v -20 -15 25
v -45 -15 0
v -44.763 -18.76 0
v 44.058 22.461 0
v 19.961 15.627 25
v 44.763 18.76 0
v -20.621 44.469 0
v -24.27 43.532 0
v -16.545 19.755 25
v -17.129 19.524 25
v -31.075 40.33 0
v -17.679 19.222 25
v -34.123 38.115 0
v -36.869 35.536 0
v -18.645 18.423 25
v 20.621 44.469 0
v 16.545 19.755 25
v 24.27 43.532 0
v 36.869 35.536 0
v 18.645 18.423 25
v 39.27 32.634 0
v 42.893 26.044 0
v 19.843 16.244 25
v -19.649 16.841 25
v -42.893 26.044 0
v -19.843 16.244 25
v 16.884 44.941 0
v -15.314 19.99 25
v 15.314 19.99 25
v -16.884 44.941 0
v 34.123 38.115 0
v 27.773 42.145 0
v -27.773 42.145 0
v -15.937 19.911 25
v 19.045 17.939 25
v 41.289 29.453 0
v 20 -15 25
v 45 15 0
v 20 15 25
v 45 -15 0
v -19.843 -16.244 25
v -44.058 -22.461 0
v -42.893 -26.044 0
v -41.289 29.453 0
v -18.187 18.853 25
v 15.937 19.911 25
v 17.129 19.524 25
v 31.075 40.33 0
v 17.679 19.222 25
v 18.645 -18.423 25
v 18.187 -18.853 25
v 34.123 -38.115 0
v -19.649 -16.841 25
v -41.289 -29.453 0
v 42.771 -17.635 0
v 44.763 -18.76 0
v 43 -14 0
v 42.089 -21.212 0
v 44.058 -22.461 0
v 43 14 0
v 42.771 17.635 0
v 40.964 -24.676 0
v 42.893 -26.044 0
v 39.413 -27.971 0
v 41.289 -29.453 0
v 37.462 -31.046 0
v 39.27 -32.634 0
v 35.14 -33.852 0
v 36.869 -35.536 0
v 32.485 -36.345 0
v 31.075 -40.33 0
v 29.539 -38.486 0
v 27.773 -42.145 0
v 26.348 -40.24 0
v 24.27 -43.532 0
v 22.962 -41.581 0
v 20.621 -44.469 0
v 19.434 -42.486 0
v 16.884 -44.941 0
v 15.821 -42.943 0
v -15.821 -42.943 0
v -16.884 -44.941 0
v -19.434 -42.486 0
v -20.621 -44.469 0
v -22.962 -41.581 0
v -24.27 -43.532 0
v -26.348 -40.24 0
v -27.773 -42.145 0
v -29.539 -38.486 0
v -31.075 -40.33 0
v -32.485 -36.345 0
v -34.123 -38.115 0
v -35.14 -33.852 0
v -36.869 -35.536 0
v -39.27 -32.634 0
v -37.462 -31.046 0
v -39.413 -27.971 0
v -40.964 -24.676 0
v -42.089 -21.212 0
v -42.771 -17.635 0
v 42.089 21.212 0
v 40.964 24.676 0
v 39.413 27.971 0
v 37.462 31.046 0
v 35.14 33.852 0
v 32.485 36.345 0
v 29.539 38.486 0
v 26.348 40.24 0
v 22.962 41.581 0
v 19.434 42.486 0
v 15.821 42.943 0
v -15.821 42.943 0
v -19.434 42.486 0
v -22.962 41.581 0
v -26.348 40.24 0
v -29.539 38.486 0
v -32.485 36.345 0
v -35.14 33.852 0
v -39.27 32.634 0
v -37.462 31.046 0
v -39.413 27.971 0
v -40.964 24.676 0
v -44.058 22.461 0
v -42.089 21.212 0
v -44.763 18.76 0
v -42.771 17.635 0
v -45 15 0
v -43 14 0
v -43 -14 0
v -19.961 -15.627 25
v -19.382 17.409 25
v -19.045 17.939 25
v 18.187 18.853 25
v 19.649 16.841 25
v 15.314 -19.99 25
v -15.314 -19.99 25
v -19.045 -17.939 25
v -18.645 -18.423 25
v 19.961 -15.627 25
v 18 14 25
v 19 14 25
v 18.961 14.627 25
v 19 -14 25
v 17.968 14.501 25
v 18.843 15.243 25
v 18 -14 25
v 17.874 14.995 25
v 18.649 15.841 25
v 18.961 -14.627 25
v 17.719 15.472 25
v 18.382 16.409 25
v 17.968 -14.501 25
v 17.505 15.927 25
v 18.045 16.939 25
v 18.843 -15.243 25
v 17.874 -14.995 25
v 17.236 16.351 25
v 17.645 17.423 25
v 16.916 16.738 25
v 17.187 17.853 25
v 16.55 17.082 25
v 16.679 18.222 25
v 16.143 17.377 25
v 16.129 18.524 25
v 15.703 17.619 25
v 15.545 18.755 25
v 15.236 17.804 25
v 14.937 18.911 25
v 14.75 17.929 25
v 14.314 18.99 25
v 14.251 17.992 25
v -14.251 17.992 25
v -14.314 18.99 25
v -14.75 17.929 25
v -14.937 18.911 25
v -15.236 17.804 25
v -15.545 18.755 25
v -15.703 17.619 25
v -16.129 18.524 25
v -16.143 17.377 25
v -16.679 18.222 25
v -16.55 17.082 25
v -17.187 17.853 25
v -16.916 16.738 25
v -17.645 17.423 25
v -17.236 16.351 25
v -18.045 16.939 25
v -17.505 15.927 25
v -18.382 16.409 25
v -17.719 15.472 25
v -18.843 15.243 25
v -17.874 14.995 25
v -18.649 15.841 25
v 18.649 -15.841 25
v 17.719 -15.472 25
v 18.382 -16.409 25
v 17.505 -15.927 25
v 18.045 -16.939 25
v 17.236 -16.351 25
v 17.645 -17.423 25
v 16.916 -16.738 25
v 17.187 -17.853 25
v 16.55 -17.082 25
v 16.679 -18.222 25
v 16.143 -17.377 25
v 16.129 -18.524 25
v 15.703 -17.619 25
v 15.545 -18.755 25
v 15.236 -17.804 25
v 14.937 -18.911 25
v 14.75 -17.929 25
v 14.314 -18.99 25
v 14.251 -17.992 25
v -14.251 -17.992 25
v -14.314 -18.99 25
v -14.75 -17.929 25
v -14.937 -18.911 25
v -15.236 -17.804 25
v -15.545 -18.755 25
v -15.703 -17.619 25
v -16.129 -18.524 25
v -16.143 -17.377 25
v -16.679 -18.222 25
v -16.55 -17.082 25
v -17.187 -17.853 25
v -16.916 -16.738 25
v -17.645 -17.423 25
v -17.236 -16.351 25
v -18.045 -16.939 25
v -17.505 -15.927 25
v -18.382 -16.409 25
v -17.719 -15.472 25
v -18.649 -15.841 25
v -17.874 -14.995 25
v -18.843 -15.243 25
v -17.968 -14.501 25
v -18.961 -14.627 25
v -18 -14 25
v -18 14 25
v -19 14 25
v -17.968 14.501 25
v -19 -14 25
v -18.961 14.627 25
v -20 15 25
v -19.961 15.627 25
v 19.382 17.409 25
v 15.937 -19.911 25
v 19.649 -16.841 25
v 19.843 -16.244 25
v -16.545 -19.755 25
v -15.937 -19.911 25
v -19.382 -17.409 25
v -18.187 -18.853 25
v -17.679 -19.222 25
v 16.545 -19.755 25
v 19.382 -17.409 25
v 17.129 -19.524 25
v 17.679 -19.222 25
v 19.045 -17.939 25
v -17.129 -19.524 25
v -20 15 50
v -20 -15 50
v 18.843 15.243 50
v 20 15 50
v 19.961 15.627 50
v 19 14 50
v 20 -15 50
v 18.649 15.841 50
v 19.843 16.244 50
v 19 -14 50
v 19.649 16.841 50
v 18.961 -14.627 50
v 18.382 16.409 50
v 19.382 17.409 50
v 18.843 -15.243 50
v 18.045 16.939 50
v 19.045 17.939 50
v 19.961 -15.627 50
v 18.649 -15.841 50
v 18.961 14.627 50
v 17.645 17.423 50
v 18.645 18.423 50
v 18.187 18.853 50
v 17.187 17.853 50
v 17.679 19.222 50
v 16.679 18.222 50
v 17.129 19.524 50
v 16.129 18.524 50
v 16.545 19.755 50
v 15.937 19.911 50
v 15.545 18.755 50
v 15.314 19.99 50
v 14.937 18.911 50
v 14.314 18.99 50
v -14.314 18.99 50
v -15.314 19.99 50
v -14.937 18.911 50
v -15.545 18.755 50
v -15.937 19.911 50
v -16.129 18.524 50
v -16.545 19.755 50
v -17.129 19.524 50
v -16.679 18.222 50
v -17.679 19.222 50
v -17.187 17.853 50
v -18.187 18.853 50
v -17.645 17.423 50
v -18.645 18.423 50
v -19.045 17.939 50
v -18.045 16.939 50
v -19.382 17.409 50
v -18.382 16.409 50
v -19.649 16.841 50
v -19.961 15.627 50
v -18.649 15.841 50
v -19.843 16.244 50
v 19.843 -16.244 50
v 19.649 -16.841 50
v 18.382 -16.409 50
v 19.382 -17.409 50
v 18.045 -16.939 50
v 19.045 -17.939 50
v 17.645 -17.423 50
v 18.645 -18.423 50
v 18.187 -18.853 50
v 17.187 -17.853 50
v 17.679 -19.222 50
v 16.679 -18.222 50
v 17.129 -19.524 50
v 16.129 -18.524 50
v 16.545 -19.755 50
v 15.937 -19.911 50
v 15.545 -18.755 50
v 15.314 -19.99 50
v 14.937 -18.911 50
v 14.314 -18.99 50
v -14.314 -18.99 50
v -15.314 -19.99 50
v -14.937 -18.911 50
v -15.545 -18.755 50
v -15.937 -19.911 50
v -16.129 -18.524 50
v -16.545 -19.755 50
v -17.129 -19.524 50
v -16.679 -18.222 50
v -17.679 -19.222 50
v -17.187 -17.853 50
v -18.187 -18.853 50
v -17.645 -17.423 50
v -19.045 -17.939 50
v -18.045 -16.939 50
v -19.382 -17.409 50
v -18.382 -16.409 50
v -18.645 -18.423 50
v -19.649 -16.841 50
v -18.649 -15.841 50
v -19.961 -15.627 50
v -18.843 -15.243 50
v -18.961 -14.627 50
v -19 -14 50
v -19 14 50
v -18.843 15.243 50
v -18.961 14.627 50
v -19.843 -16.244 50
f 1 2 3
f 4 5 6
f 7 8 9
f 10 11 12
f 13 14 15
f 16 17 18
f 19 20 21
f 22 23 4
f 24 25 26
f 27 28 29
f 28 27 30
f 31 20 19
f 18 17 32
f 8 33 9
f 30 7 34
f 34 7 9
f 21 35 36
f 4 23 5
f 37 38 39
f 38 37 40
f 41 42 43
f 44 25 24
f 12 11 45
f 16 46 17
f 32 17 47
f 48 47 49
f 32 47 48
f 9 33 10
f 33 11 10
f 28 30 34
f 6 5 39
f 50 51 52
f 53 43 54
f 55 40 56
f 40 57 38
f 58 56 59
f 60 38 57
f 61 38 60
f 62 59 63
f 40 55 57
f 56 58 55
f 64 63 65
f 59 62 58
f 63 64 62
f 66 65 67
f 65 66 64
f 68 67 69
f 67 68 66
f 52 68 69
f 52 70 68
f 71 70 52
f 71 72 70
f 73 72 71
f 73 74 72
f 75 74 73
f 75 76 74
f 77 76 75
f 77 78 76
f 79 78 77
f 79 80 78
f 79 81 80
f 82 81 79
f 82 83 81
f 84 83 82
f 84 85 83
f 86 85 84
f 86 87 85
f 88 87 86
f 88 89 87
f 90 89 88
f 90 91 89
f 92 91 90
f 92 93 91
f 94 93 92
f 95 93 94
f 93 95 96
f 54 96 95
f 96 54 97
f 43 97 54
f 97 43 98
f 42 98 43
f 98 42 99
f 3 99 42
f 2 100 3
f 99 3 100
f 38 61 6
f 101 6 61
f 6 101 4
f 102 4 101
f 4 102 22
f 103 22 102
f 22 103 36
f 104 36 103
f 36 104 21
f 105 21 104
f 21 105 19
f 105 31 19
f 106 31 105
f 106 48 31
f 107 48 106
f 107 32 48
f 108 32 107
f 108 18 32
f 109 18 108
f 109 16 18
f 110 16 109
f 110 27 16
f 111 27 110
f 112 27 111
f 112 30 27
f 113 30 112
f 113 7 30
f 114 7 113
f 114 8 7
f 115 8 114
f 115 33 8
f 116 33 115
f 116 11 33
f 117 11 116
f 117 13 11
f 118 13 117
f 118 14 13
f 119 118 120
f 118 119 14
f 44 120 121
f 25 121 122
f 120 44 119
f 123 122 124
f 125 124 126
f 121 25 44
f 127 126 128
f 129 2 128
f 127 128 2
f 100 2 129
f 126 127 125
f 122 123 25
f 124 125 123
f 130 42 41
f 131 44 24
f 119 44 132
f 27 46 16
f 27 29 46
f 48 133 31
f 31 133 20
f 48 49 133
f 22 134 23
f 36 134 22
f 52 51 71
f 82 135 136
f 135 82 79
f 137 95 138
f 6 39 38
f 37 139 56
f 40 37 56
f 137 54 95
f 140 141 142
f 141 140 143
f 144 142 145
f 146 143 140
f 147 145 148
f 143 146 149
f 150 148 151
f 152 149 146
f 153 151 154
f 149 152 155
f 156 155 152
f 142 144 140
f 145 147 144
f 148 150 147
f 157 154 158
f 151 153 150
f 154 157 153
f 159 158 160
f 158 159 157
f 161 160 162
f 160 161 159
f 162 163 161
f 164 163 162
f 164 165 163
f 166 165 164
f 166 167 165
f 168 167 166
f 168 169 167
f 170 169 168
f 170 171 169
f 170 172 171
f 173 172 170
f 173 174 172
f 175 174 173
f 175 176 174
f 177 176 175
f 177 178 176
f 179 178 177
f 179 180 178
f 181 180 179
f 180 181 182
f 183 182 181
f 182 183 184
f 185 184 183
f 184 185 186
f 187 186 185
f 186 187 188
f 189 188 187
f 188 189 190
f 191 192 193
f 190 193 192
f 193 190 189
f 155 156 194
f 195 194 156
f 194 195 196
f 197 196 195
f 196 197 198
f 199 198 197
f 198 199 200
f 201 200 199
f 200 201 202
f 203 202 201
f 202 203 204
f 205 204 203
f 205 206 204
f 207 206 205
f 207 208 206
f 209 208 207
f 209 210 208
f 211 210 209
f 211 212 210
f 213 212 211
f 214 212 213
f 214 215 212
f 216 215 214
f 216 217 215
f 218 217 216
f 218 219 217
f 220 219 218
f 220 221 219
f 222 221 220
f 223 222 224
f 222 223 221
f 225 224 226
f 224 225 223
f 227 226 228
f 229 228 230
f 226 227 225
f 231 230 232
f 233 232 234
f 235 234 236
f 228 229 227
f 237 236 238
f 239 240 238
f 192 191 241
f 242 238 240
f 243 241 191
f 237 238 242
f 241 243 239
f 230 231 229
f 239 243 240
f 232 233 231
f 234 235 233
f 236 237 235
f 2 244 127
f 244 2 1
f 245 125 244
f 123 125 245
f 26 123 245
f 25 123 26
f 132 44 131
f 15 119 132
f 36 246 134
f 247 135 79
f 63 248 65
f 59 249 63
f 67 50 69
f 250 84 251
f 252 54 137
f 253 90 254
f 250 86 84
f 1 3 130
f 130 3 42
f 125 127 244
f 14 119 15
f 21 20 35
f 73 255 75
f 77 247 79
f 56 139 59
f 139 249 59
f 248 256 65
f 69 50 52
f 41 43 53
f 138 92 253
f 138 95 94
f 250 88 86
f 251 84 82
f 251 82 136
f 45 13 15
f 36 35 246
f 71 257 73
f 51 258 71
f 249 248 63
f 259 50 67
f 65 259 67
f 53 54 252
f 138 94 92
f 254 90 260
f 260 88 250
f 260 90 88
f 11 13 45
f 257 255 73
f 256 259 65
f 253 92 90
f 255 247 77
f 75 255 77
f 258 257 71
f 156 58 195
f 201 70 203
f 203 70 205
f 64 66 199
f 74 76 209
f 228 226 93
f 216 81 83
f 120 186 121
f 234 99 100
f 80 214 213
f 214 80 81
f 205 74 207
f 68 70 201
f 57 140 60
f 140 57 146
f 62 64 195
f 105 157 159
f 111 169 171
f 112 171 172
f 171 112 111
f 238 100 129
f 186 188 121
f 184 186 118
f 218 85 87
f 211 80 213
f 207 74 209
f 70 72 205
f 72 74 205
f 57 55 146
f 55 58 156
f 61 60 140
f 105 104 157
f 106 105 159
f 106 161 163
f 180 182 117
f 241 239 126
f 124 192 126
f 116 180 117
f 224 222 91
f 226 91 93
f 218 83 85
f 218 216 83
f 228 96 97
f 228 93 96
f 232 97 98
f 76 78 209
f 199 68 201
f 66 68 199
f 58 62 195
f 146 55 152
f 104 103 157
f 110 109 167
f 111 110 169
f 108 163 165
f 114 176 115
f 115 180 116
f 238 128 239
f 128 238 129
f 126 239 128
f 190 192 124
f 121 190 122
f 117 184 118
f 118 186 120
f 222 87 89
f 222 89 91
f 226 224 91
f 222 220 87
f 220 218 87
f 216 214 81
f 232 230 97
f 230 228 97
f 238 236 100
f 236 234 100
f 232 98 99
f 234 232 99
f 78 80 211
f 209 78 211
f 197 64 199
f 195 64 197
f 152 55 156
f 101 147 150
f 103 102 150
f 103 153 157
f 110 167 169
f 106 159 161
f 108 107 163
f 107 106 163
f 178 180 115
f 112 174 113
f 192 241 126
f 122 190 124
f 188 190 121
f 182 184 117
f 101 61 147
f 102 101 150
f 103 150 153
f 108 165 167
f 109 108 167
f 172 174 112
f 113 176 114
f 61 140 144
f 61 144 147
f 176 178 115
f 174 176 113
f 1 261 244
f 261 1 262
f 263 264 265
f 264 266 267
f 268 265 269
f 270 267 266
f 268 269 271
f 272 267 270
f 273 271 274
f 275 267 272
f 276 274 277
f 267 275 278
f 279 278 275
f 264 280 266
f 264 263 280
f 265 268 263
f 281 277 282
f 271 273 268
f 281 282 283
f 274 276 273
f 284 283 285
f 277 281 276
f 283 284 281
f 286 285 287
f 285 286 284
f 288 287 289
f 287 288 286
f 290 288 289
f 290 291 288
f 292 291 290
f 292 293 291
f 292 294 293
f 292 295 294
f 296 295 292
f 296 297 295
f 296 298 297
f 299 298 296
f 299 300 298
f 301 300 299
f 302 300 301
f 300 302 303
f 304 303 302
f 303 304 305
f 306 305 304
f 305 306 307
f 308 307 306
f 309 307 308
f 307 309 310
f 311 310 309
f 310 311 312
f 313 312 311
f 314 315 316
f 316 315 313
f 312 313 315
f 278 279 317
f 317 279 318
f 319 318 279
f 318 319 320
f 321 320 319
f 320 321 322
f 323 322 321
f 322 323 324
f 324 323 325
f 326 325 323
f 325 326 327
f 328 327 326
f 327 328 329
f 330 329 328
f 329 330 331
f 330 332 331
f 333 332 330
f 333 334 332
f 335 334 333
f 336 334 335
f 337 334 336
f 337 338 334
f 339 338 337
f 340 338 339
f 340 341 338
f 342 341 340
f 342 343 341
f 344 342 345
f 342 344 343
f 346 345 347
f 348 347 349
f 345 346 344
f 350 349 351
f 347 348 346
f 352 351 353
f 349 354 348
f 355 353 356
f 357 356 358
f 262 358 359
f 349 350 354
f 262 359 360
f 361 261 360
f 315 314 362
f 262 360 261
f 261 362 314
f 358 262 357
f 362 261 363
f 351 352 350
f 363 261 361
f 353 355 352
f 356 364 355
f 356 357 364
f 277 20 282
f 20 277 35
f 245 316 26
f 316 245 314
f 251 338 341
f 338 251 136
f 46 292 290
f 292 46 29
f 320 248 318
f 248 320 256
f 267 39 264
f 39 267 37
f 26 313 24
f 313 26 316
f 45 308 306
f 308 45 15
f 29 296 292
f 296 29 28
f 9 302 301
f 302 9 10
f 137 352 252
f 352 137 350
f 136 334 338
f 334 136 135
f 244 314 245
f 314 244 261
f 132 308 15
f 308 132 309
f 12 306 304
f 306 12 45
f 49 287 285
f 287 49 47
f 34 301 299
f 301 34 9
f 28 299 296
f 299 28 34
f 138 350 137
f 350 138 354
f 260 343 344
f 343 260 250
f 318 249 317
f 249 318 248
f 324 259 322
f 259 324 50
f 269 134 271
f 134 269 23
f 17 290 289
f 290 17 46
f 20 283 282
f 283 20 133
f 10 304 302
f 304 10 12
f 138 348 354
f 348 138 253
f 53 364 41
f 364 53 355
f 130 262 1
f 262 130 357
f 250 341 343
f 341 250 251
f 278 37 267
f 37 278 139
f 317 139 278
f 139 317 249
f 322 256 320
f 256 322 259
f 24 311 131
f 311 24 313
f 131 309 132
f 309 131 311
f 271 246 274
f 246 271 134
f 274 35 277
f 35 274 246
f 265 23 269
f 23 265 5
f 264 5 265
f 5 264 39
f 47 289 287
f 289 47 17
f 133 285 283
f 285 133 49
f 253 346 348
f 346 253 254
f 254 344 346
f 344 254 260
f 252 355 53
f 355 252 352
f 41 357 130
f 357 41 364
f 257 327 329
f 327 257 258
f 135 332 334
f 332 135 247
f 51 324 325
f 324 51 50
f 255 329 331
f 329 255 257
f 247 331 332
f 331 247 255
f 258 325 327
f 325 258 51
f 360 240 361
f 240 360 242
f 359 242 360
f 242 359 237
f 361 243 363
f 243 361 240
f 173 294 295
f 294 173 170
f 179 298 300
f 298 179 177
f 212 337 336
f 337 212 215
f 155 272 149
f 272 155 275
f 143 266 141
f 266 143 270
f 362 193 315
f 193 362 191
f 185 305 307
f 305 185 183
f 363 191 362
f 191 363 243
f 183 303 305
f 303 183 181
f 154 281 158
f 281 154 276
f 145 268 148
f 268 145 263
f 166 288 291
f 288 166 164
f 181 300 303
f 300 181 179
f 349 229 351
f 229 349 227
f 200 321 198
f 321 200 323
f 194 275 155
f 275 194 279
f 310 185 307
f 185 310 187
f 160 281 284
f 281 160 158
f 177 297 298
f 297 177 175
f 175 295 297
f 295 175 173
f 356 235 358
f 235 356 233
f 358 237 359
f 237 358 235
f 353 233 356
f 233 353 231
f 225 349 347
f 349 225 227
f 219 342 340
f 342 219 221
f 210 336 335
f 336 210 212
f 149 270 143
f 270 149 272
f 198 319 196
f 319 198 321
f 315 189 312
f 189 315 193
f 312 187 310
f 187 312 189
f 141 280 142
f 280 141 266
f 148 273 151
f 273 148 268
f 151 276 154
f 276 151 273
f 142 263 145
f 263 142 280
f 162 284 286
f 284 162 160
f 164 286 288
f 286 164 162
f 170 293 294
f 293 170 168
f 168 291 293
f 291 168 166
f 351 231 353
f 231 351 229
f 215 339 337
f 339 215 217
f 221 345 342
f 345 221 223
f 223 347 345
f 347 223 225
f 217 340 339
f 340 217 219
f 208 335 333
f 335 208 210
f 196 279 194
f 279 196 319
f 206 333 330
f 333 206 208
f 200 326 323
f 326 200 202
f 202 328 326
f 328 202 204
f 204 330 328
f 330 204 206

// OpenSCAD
$fn = 50;


difference() {
	union() {
		translate(v = [0, 0, 0]) {
			rotate(a = [0, 0, 0]) {
				difference() {
					union() {
						hull() {
							translate(v = [-15.0000000000, 15.0000000000, 0]) {
								cylinder(h = 25, r = 5, r1 = 30.0000000000, r2 = 5);
							}
							translate(v = [15.0000000000, 15.0000000000, 0]) {
								cylinder(h = 25, r = 5, r1 = 30.0000000000, r2 = 5);
							}
							translate(v = [-15.0000000000, -15.0000000000, 0]) {
								cylinder(h = 25, r = 5, r1 = 30.0000000000, r2 = 5);
							}
							translate(v = [15.0000000000, -15.0000000000, 0]) {
								cylinder(h = 25, r = 5, r1 = 30.0000000000, r2 = 5);
							}
						}
					}
					union() {
						hull() {
							translate(v = [-14.0000000000, 14.0000000000, 0]) {
								cylinder(h = 25, r = 5, r1 = 29.0000000000, r2 = 4);
							}
							translate(v = [14.0000000000, 14.0000000000, 0]) {
								cylinder(h = 25, r = 5, r1 = 29.0000000000, r2 = 4);
							}
							translate(v = [-14.0000000000, -14.0000000000, 0]) {
								cylinder(h = 25, r = 5, r1 = 29.0000000000, r2 = 4);
							}
							translate(v = [14.0000000000, -14.0000000000, 0]) {
								cylinder(h = 25, r = 5, r1 = 29.0000000000, r2 = 4);
							}
						}
					}
				}
			}
		}
		translate(v = [0, 0, 25]) {
			rotate(a = [0, 0, 0]) {
				difference() {
					union() {
						hull() {
							translate(v = [-15.0000000000, 15.0000000000, 0]) {
								cylinder(h = 25, r = 5);
							}
							translate(v = [15.0000000000, 15.0000000000, 0]) {
								cylinder(h = 25, r = 5);
							}
							translate(v = [-15.0000000000, -15.0000000000, 0]) {
								cylinder(h = 25, r = 5);
							}
							translate(v = [15.0000000000, -15.0000000000, 0]) {
								cylinder(h = 25, r = 5);
							}
						}
					}
					union() {
						hull() {
							translate(v = [-14.0000000000, 14.0000000000, 0]) {
								cylinder(h = 25, r = 5);
							}
							translate(v = [14.0000000000, 14.0000000000, 0]) {
								cylinder(h = 25, r = 5);
							}
							translate(v = [-14.0000000000, -14.0000000000, 0]) {
								cylinder(h = 25, r = 5);
							}
							translate(v = [14.0000000000, -14.0000000000, 0]) {
								cylinder(h = 25, r = 5);
							}
						}
					}
				}
			}
		}
	}
	union();
}
